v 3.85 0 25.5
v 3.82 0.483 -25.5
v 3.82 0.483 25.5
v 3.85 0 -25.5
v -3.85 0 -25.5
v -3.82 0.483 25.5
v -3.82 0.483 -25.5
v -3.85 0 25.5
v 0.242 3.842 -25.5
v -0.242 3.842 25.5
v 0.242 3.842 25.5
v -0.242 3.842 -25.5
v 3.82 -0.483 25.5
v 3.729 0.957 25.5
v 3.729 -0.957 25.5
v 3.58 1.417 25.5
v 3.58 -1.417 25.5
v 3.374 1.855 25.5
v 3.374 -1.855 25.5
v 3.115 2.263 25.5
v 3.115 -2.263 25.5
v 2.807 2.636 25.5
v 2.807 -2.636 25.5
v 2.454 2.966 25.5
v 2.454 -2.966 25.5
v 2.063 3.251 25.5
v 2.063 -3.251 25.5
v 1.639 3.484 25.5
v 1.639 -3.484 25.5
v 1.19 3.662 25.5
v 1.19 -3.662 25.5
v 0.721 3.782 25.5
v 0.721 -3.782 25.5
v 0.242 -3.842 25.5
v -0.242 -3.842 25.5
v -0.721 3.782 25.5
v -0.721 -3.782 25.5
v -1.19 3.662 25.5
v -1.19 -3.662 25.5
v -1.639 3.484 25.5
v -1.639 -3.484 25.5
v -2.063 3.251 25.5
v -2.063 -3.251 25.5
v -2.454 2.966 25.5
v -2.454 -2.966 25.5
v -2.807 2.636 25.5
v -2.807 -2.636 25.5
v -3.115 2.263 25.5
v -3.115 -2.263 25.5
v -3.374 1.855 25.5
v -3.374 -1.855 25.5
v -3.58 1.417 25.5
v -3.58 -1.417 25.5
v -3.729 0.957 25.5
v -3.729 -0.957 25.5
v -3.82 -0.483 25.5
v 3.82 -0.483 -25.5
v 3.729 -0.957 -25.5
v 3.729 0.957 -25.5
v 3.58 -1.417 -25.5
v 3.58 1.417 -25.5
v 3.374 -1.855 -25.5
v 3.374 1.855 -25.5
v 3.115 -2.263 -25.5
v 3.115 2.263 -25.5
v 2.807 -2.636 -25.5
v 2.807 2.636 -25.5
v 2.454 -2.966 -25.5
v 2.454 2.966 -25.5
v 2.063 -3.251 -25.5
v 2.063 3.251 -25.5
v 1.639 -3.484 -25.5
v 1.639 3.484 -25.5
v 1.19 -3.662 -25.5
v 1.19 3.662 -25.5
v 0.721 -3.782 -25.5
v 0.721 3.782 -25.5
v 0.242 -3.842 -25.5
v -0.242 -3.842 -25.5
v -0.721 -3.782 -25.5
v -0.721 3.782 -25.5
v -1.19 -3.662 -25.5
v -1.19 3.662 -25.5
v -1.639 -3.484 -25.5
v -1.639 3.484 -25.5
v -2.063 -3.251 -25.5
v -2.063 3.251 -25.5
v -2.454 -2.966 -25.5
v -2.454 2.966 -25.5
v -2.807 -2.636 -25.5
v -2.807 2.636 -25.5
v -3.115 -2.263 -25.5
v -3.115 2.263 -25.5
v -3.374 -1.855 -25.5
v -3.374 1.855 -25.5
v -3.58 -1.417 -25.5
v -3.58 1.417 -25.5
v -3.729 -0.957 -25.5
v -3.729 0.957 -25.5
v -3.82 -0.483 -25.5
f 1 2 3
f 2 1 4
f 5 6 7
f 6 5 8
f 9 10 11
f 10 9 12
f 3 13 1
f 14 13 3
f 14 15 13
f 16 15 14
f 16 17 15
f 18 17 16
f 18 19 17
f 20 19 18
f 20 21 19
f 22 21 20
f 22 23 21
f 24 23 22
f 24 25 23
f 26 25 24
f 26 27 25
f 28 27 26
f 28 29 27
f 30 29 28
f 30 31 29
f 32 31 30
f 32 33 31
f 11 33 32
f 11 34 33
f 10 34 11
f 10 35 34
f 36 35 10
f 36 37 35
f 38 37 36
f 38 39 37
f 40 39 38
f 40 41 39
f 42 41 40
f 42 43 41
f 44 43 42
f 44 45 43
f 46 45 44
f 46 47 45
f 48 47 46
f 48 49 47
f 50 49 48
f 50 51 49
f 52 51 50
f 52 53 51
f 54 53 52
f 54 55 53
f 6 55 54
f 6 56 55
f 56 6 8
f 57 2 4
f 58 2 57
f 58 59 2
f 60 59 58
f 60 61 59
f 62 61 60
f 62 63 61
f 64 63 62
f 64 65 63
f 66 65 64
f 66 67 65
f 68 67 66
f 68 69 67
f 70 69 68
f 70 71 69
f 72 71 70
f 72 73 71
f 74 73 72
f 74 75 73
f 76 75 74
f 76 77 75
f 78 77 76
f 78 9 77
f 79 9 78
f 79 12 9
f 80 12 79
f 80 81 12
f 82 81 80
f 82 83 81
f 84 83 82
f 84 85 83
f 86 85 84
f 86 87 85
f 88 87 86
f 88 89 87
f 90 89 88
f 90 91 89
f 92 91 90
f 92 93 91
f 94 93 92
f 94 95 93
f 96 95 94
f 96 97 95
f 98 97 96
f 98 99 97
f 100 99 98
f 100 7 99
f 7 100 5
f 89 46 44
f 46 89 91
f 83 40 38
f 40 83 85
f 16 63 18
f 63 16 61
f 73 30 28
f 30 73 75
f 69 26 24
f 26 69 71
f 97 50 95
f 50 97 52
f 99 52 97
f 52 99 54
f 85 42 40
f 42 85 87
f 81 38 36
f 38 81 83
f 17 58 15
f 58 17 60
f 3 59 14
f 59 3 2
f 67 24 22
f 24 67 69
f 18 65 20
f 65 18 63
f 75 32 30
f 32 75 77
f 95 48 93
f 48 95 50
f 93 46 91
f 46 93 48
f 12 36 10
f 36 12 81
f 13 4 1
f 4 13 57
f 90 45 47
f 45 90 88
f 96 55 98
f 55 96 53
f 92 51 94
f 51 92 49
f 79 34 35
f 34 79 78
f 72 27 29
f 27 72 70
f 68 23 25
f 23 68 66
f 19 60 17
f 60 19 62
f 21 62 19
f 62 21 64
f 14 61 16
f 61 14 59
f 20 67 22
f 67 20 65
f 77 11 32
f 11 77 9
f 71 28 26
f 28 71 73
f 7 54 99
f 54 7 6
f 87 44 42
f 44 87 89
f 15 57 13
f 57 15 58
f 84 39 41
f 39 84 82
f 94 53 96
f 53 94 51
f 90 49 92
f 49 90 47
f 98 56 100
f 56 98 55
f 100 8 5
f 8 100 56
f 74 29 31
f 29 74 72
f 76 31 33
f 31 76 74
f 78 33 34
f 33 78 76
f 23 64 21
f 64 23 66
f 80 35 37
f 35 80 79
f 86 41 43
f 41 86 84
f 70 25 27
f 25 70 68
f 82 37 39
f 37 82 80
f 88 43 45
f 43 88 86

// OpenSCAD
$fn = 50;


difference() {
	union() {
		translate(v = [0, 0, -25.5000000000]) {
			cylinder(h = 51, r = 3.8500000000);
		}
	}
	union() {
		translate(v = [0, 0, -100.0000000000]) {
			cylinder(h = 200, r = 0);
		}
	}
}
